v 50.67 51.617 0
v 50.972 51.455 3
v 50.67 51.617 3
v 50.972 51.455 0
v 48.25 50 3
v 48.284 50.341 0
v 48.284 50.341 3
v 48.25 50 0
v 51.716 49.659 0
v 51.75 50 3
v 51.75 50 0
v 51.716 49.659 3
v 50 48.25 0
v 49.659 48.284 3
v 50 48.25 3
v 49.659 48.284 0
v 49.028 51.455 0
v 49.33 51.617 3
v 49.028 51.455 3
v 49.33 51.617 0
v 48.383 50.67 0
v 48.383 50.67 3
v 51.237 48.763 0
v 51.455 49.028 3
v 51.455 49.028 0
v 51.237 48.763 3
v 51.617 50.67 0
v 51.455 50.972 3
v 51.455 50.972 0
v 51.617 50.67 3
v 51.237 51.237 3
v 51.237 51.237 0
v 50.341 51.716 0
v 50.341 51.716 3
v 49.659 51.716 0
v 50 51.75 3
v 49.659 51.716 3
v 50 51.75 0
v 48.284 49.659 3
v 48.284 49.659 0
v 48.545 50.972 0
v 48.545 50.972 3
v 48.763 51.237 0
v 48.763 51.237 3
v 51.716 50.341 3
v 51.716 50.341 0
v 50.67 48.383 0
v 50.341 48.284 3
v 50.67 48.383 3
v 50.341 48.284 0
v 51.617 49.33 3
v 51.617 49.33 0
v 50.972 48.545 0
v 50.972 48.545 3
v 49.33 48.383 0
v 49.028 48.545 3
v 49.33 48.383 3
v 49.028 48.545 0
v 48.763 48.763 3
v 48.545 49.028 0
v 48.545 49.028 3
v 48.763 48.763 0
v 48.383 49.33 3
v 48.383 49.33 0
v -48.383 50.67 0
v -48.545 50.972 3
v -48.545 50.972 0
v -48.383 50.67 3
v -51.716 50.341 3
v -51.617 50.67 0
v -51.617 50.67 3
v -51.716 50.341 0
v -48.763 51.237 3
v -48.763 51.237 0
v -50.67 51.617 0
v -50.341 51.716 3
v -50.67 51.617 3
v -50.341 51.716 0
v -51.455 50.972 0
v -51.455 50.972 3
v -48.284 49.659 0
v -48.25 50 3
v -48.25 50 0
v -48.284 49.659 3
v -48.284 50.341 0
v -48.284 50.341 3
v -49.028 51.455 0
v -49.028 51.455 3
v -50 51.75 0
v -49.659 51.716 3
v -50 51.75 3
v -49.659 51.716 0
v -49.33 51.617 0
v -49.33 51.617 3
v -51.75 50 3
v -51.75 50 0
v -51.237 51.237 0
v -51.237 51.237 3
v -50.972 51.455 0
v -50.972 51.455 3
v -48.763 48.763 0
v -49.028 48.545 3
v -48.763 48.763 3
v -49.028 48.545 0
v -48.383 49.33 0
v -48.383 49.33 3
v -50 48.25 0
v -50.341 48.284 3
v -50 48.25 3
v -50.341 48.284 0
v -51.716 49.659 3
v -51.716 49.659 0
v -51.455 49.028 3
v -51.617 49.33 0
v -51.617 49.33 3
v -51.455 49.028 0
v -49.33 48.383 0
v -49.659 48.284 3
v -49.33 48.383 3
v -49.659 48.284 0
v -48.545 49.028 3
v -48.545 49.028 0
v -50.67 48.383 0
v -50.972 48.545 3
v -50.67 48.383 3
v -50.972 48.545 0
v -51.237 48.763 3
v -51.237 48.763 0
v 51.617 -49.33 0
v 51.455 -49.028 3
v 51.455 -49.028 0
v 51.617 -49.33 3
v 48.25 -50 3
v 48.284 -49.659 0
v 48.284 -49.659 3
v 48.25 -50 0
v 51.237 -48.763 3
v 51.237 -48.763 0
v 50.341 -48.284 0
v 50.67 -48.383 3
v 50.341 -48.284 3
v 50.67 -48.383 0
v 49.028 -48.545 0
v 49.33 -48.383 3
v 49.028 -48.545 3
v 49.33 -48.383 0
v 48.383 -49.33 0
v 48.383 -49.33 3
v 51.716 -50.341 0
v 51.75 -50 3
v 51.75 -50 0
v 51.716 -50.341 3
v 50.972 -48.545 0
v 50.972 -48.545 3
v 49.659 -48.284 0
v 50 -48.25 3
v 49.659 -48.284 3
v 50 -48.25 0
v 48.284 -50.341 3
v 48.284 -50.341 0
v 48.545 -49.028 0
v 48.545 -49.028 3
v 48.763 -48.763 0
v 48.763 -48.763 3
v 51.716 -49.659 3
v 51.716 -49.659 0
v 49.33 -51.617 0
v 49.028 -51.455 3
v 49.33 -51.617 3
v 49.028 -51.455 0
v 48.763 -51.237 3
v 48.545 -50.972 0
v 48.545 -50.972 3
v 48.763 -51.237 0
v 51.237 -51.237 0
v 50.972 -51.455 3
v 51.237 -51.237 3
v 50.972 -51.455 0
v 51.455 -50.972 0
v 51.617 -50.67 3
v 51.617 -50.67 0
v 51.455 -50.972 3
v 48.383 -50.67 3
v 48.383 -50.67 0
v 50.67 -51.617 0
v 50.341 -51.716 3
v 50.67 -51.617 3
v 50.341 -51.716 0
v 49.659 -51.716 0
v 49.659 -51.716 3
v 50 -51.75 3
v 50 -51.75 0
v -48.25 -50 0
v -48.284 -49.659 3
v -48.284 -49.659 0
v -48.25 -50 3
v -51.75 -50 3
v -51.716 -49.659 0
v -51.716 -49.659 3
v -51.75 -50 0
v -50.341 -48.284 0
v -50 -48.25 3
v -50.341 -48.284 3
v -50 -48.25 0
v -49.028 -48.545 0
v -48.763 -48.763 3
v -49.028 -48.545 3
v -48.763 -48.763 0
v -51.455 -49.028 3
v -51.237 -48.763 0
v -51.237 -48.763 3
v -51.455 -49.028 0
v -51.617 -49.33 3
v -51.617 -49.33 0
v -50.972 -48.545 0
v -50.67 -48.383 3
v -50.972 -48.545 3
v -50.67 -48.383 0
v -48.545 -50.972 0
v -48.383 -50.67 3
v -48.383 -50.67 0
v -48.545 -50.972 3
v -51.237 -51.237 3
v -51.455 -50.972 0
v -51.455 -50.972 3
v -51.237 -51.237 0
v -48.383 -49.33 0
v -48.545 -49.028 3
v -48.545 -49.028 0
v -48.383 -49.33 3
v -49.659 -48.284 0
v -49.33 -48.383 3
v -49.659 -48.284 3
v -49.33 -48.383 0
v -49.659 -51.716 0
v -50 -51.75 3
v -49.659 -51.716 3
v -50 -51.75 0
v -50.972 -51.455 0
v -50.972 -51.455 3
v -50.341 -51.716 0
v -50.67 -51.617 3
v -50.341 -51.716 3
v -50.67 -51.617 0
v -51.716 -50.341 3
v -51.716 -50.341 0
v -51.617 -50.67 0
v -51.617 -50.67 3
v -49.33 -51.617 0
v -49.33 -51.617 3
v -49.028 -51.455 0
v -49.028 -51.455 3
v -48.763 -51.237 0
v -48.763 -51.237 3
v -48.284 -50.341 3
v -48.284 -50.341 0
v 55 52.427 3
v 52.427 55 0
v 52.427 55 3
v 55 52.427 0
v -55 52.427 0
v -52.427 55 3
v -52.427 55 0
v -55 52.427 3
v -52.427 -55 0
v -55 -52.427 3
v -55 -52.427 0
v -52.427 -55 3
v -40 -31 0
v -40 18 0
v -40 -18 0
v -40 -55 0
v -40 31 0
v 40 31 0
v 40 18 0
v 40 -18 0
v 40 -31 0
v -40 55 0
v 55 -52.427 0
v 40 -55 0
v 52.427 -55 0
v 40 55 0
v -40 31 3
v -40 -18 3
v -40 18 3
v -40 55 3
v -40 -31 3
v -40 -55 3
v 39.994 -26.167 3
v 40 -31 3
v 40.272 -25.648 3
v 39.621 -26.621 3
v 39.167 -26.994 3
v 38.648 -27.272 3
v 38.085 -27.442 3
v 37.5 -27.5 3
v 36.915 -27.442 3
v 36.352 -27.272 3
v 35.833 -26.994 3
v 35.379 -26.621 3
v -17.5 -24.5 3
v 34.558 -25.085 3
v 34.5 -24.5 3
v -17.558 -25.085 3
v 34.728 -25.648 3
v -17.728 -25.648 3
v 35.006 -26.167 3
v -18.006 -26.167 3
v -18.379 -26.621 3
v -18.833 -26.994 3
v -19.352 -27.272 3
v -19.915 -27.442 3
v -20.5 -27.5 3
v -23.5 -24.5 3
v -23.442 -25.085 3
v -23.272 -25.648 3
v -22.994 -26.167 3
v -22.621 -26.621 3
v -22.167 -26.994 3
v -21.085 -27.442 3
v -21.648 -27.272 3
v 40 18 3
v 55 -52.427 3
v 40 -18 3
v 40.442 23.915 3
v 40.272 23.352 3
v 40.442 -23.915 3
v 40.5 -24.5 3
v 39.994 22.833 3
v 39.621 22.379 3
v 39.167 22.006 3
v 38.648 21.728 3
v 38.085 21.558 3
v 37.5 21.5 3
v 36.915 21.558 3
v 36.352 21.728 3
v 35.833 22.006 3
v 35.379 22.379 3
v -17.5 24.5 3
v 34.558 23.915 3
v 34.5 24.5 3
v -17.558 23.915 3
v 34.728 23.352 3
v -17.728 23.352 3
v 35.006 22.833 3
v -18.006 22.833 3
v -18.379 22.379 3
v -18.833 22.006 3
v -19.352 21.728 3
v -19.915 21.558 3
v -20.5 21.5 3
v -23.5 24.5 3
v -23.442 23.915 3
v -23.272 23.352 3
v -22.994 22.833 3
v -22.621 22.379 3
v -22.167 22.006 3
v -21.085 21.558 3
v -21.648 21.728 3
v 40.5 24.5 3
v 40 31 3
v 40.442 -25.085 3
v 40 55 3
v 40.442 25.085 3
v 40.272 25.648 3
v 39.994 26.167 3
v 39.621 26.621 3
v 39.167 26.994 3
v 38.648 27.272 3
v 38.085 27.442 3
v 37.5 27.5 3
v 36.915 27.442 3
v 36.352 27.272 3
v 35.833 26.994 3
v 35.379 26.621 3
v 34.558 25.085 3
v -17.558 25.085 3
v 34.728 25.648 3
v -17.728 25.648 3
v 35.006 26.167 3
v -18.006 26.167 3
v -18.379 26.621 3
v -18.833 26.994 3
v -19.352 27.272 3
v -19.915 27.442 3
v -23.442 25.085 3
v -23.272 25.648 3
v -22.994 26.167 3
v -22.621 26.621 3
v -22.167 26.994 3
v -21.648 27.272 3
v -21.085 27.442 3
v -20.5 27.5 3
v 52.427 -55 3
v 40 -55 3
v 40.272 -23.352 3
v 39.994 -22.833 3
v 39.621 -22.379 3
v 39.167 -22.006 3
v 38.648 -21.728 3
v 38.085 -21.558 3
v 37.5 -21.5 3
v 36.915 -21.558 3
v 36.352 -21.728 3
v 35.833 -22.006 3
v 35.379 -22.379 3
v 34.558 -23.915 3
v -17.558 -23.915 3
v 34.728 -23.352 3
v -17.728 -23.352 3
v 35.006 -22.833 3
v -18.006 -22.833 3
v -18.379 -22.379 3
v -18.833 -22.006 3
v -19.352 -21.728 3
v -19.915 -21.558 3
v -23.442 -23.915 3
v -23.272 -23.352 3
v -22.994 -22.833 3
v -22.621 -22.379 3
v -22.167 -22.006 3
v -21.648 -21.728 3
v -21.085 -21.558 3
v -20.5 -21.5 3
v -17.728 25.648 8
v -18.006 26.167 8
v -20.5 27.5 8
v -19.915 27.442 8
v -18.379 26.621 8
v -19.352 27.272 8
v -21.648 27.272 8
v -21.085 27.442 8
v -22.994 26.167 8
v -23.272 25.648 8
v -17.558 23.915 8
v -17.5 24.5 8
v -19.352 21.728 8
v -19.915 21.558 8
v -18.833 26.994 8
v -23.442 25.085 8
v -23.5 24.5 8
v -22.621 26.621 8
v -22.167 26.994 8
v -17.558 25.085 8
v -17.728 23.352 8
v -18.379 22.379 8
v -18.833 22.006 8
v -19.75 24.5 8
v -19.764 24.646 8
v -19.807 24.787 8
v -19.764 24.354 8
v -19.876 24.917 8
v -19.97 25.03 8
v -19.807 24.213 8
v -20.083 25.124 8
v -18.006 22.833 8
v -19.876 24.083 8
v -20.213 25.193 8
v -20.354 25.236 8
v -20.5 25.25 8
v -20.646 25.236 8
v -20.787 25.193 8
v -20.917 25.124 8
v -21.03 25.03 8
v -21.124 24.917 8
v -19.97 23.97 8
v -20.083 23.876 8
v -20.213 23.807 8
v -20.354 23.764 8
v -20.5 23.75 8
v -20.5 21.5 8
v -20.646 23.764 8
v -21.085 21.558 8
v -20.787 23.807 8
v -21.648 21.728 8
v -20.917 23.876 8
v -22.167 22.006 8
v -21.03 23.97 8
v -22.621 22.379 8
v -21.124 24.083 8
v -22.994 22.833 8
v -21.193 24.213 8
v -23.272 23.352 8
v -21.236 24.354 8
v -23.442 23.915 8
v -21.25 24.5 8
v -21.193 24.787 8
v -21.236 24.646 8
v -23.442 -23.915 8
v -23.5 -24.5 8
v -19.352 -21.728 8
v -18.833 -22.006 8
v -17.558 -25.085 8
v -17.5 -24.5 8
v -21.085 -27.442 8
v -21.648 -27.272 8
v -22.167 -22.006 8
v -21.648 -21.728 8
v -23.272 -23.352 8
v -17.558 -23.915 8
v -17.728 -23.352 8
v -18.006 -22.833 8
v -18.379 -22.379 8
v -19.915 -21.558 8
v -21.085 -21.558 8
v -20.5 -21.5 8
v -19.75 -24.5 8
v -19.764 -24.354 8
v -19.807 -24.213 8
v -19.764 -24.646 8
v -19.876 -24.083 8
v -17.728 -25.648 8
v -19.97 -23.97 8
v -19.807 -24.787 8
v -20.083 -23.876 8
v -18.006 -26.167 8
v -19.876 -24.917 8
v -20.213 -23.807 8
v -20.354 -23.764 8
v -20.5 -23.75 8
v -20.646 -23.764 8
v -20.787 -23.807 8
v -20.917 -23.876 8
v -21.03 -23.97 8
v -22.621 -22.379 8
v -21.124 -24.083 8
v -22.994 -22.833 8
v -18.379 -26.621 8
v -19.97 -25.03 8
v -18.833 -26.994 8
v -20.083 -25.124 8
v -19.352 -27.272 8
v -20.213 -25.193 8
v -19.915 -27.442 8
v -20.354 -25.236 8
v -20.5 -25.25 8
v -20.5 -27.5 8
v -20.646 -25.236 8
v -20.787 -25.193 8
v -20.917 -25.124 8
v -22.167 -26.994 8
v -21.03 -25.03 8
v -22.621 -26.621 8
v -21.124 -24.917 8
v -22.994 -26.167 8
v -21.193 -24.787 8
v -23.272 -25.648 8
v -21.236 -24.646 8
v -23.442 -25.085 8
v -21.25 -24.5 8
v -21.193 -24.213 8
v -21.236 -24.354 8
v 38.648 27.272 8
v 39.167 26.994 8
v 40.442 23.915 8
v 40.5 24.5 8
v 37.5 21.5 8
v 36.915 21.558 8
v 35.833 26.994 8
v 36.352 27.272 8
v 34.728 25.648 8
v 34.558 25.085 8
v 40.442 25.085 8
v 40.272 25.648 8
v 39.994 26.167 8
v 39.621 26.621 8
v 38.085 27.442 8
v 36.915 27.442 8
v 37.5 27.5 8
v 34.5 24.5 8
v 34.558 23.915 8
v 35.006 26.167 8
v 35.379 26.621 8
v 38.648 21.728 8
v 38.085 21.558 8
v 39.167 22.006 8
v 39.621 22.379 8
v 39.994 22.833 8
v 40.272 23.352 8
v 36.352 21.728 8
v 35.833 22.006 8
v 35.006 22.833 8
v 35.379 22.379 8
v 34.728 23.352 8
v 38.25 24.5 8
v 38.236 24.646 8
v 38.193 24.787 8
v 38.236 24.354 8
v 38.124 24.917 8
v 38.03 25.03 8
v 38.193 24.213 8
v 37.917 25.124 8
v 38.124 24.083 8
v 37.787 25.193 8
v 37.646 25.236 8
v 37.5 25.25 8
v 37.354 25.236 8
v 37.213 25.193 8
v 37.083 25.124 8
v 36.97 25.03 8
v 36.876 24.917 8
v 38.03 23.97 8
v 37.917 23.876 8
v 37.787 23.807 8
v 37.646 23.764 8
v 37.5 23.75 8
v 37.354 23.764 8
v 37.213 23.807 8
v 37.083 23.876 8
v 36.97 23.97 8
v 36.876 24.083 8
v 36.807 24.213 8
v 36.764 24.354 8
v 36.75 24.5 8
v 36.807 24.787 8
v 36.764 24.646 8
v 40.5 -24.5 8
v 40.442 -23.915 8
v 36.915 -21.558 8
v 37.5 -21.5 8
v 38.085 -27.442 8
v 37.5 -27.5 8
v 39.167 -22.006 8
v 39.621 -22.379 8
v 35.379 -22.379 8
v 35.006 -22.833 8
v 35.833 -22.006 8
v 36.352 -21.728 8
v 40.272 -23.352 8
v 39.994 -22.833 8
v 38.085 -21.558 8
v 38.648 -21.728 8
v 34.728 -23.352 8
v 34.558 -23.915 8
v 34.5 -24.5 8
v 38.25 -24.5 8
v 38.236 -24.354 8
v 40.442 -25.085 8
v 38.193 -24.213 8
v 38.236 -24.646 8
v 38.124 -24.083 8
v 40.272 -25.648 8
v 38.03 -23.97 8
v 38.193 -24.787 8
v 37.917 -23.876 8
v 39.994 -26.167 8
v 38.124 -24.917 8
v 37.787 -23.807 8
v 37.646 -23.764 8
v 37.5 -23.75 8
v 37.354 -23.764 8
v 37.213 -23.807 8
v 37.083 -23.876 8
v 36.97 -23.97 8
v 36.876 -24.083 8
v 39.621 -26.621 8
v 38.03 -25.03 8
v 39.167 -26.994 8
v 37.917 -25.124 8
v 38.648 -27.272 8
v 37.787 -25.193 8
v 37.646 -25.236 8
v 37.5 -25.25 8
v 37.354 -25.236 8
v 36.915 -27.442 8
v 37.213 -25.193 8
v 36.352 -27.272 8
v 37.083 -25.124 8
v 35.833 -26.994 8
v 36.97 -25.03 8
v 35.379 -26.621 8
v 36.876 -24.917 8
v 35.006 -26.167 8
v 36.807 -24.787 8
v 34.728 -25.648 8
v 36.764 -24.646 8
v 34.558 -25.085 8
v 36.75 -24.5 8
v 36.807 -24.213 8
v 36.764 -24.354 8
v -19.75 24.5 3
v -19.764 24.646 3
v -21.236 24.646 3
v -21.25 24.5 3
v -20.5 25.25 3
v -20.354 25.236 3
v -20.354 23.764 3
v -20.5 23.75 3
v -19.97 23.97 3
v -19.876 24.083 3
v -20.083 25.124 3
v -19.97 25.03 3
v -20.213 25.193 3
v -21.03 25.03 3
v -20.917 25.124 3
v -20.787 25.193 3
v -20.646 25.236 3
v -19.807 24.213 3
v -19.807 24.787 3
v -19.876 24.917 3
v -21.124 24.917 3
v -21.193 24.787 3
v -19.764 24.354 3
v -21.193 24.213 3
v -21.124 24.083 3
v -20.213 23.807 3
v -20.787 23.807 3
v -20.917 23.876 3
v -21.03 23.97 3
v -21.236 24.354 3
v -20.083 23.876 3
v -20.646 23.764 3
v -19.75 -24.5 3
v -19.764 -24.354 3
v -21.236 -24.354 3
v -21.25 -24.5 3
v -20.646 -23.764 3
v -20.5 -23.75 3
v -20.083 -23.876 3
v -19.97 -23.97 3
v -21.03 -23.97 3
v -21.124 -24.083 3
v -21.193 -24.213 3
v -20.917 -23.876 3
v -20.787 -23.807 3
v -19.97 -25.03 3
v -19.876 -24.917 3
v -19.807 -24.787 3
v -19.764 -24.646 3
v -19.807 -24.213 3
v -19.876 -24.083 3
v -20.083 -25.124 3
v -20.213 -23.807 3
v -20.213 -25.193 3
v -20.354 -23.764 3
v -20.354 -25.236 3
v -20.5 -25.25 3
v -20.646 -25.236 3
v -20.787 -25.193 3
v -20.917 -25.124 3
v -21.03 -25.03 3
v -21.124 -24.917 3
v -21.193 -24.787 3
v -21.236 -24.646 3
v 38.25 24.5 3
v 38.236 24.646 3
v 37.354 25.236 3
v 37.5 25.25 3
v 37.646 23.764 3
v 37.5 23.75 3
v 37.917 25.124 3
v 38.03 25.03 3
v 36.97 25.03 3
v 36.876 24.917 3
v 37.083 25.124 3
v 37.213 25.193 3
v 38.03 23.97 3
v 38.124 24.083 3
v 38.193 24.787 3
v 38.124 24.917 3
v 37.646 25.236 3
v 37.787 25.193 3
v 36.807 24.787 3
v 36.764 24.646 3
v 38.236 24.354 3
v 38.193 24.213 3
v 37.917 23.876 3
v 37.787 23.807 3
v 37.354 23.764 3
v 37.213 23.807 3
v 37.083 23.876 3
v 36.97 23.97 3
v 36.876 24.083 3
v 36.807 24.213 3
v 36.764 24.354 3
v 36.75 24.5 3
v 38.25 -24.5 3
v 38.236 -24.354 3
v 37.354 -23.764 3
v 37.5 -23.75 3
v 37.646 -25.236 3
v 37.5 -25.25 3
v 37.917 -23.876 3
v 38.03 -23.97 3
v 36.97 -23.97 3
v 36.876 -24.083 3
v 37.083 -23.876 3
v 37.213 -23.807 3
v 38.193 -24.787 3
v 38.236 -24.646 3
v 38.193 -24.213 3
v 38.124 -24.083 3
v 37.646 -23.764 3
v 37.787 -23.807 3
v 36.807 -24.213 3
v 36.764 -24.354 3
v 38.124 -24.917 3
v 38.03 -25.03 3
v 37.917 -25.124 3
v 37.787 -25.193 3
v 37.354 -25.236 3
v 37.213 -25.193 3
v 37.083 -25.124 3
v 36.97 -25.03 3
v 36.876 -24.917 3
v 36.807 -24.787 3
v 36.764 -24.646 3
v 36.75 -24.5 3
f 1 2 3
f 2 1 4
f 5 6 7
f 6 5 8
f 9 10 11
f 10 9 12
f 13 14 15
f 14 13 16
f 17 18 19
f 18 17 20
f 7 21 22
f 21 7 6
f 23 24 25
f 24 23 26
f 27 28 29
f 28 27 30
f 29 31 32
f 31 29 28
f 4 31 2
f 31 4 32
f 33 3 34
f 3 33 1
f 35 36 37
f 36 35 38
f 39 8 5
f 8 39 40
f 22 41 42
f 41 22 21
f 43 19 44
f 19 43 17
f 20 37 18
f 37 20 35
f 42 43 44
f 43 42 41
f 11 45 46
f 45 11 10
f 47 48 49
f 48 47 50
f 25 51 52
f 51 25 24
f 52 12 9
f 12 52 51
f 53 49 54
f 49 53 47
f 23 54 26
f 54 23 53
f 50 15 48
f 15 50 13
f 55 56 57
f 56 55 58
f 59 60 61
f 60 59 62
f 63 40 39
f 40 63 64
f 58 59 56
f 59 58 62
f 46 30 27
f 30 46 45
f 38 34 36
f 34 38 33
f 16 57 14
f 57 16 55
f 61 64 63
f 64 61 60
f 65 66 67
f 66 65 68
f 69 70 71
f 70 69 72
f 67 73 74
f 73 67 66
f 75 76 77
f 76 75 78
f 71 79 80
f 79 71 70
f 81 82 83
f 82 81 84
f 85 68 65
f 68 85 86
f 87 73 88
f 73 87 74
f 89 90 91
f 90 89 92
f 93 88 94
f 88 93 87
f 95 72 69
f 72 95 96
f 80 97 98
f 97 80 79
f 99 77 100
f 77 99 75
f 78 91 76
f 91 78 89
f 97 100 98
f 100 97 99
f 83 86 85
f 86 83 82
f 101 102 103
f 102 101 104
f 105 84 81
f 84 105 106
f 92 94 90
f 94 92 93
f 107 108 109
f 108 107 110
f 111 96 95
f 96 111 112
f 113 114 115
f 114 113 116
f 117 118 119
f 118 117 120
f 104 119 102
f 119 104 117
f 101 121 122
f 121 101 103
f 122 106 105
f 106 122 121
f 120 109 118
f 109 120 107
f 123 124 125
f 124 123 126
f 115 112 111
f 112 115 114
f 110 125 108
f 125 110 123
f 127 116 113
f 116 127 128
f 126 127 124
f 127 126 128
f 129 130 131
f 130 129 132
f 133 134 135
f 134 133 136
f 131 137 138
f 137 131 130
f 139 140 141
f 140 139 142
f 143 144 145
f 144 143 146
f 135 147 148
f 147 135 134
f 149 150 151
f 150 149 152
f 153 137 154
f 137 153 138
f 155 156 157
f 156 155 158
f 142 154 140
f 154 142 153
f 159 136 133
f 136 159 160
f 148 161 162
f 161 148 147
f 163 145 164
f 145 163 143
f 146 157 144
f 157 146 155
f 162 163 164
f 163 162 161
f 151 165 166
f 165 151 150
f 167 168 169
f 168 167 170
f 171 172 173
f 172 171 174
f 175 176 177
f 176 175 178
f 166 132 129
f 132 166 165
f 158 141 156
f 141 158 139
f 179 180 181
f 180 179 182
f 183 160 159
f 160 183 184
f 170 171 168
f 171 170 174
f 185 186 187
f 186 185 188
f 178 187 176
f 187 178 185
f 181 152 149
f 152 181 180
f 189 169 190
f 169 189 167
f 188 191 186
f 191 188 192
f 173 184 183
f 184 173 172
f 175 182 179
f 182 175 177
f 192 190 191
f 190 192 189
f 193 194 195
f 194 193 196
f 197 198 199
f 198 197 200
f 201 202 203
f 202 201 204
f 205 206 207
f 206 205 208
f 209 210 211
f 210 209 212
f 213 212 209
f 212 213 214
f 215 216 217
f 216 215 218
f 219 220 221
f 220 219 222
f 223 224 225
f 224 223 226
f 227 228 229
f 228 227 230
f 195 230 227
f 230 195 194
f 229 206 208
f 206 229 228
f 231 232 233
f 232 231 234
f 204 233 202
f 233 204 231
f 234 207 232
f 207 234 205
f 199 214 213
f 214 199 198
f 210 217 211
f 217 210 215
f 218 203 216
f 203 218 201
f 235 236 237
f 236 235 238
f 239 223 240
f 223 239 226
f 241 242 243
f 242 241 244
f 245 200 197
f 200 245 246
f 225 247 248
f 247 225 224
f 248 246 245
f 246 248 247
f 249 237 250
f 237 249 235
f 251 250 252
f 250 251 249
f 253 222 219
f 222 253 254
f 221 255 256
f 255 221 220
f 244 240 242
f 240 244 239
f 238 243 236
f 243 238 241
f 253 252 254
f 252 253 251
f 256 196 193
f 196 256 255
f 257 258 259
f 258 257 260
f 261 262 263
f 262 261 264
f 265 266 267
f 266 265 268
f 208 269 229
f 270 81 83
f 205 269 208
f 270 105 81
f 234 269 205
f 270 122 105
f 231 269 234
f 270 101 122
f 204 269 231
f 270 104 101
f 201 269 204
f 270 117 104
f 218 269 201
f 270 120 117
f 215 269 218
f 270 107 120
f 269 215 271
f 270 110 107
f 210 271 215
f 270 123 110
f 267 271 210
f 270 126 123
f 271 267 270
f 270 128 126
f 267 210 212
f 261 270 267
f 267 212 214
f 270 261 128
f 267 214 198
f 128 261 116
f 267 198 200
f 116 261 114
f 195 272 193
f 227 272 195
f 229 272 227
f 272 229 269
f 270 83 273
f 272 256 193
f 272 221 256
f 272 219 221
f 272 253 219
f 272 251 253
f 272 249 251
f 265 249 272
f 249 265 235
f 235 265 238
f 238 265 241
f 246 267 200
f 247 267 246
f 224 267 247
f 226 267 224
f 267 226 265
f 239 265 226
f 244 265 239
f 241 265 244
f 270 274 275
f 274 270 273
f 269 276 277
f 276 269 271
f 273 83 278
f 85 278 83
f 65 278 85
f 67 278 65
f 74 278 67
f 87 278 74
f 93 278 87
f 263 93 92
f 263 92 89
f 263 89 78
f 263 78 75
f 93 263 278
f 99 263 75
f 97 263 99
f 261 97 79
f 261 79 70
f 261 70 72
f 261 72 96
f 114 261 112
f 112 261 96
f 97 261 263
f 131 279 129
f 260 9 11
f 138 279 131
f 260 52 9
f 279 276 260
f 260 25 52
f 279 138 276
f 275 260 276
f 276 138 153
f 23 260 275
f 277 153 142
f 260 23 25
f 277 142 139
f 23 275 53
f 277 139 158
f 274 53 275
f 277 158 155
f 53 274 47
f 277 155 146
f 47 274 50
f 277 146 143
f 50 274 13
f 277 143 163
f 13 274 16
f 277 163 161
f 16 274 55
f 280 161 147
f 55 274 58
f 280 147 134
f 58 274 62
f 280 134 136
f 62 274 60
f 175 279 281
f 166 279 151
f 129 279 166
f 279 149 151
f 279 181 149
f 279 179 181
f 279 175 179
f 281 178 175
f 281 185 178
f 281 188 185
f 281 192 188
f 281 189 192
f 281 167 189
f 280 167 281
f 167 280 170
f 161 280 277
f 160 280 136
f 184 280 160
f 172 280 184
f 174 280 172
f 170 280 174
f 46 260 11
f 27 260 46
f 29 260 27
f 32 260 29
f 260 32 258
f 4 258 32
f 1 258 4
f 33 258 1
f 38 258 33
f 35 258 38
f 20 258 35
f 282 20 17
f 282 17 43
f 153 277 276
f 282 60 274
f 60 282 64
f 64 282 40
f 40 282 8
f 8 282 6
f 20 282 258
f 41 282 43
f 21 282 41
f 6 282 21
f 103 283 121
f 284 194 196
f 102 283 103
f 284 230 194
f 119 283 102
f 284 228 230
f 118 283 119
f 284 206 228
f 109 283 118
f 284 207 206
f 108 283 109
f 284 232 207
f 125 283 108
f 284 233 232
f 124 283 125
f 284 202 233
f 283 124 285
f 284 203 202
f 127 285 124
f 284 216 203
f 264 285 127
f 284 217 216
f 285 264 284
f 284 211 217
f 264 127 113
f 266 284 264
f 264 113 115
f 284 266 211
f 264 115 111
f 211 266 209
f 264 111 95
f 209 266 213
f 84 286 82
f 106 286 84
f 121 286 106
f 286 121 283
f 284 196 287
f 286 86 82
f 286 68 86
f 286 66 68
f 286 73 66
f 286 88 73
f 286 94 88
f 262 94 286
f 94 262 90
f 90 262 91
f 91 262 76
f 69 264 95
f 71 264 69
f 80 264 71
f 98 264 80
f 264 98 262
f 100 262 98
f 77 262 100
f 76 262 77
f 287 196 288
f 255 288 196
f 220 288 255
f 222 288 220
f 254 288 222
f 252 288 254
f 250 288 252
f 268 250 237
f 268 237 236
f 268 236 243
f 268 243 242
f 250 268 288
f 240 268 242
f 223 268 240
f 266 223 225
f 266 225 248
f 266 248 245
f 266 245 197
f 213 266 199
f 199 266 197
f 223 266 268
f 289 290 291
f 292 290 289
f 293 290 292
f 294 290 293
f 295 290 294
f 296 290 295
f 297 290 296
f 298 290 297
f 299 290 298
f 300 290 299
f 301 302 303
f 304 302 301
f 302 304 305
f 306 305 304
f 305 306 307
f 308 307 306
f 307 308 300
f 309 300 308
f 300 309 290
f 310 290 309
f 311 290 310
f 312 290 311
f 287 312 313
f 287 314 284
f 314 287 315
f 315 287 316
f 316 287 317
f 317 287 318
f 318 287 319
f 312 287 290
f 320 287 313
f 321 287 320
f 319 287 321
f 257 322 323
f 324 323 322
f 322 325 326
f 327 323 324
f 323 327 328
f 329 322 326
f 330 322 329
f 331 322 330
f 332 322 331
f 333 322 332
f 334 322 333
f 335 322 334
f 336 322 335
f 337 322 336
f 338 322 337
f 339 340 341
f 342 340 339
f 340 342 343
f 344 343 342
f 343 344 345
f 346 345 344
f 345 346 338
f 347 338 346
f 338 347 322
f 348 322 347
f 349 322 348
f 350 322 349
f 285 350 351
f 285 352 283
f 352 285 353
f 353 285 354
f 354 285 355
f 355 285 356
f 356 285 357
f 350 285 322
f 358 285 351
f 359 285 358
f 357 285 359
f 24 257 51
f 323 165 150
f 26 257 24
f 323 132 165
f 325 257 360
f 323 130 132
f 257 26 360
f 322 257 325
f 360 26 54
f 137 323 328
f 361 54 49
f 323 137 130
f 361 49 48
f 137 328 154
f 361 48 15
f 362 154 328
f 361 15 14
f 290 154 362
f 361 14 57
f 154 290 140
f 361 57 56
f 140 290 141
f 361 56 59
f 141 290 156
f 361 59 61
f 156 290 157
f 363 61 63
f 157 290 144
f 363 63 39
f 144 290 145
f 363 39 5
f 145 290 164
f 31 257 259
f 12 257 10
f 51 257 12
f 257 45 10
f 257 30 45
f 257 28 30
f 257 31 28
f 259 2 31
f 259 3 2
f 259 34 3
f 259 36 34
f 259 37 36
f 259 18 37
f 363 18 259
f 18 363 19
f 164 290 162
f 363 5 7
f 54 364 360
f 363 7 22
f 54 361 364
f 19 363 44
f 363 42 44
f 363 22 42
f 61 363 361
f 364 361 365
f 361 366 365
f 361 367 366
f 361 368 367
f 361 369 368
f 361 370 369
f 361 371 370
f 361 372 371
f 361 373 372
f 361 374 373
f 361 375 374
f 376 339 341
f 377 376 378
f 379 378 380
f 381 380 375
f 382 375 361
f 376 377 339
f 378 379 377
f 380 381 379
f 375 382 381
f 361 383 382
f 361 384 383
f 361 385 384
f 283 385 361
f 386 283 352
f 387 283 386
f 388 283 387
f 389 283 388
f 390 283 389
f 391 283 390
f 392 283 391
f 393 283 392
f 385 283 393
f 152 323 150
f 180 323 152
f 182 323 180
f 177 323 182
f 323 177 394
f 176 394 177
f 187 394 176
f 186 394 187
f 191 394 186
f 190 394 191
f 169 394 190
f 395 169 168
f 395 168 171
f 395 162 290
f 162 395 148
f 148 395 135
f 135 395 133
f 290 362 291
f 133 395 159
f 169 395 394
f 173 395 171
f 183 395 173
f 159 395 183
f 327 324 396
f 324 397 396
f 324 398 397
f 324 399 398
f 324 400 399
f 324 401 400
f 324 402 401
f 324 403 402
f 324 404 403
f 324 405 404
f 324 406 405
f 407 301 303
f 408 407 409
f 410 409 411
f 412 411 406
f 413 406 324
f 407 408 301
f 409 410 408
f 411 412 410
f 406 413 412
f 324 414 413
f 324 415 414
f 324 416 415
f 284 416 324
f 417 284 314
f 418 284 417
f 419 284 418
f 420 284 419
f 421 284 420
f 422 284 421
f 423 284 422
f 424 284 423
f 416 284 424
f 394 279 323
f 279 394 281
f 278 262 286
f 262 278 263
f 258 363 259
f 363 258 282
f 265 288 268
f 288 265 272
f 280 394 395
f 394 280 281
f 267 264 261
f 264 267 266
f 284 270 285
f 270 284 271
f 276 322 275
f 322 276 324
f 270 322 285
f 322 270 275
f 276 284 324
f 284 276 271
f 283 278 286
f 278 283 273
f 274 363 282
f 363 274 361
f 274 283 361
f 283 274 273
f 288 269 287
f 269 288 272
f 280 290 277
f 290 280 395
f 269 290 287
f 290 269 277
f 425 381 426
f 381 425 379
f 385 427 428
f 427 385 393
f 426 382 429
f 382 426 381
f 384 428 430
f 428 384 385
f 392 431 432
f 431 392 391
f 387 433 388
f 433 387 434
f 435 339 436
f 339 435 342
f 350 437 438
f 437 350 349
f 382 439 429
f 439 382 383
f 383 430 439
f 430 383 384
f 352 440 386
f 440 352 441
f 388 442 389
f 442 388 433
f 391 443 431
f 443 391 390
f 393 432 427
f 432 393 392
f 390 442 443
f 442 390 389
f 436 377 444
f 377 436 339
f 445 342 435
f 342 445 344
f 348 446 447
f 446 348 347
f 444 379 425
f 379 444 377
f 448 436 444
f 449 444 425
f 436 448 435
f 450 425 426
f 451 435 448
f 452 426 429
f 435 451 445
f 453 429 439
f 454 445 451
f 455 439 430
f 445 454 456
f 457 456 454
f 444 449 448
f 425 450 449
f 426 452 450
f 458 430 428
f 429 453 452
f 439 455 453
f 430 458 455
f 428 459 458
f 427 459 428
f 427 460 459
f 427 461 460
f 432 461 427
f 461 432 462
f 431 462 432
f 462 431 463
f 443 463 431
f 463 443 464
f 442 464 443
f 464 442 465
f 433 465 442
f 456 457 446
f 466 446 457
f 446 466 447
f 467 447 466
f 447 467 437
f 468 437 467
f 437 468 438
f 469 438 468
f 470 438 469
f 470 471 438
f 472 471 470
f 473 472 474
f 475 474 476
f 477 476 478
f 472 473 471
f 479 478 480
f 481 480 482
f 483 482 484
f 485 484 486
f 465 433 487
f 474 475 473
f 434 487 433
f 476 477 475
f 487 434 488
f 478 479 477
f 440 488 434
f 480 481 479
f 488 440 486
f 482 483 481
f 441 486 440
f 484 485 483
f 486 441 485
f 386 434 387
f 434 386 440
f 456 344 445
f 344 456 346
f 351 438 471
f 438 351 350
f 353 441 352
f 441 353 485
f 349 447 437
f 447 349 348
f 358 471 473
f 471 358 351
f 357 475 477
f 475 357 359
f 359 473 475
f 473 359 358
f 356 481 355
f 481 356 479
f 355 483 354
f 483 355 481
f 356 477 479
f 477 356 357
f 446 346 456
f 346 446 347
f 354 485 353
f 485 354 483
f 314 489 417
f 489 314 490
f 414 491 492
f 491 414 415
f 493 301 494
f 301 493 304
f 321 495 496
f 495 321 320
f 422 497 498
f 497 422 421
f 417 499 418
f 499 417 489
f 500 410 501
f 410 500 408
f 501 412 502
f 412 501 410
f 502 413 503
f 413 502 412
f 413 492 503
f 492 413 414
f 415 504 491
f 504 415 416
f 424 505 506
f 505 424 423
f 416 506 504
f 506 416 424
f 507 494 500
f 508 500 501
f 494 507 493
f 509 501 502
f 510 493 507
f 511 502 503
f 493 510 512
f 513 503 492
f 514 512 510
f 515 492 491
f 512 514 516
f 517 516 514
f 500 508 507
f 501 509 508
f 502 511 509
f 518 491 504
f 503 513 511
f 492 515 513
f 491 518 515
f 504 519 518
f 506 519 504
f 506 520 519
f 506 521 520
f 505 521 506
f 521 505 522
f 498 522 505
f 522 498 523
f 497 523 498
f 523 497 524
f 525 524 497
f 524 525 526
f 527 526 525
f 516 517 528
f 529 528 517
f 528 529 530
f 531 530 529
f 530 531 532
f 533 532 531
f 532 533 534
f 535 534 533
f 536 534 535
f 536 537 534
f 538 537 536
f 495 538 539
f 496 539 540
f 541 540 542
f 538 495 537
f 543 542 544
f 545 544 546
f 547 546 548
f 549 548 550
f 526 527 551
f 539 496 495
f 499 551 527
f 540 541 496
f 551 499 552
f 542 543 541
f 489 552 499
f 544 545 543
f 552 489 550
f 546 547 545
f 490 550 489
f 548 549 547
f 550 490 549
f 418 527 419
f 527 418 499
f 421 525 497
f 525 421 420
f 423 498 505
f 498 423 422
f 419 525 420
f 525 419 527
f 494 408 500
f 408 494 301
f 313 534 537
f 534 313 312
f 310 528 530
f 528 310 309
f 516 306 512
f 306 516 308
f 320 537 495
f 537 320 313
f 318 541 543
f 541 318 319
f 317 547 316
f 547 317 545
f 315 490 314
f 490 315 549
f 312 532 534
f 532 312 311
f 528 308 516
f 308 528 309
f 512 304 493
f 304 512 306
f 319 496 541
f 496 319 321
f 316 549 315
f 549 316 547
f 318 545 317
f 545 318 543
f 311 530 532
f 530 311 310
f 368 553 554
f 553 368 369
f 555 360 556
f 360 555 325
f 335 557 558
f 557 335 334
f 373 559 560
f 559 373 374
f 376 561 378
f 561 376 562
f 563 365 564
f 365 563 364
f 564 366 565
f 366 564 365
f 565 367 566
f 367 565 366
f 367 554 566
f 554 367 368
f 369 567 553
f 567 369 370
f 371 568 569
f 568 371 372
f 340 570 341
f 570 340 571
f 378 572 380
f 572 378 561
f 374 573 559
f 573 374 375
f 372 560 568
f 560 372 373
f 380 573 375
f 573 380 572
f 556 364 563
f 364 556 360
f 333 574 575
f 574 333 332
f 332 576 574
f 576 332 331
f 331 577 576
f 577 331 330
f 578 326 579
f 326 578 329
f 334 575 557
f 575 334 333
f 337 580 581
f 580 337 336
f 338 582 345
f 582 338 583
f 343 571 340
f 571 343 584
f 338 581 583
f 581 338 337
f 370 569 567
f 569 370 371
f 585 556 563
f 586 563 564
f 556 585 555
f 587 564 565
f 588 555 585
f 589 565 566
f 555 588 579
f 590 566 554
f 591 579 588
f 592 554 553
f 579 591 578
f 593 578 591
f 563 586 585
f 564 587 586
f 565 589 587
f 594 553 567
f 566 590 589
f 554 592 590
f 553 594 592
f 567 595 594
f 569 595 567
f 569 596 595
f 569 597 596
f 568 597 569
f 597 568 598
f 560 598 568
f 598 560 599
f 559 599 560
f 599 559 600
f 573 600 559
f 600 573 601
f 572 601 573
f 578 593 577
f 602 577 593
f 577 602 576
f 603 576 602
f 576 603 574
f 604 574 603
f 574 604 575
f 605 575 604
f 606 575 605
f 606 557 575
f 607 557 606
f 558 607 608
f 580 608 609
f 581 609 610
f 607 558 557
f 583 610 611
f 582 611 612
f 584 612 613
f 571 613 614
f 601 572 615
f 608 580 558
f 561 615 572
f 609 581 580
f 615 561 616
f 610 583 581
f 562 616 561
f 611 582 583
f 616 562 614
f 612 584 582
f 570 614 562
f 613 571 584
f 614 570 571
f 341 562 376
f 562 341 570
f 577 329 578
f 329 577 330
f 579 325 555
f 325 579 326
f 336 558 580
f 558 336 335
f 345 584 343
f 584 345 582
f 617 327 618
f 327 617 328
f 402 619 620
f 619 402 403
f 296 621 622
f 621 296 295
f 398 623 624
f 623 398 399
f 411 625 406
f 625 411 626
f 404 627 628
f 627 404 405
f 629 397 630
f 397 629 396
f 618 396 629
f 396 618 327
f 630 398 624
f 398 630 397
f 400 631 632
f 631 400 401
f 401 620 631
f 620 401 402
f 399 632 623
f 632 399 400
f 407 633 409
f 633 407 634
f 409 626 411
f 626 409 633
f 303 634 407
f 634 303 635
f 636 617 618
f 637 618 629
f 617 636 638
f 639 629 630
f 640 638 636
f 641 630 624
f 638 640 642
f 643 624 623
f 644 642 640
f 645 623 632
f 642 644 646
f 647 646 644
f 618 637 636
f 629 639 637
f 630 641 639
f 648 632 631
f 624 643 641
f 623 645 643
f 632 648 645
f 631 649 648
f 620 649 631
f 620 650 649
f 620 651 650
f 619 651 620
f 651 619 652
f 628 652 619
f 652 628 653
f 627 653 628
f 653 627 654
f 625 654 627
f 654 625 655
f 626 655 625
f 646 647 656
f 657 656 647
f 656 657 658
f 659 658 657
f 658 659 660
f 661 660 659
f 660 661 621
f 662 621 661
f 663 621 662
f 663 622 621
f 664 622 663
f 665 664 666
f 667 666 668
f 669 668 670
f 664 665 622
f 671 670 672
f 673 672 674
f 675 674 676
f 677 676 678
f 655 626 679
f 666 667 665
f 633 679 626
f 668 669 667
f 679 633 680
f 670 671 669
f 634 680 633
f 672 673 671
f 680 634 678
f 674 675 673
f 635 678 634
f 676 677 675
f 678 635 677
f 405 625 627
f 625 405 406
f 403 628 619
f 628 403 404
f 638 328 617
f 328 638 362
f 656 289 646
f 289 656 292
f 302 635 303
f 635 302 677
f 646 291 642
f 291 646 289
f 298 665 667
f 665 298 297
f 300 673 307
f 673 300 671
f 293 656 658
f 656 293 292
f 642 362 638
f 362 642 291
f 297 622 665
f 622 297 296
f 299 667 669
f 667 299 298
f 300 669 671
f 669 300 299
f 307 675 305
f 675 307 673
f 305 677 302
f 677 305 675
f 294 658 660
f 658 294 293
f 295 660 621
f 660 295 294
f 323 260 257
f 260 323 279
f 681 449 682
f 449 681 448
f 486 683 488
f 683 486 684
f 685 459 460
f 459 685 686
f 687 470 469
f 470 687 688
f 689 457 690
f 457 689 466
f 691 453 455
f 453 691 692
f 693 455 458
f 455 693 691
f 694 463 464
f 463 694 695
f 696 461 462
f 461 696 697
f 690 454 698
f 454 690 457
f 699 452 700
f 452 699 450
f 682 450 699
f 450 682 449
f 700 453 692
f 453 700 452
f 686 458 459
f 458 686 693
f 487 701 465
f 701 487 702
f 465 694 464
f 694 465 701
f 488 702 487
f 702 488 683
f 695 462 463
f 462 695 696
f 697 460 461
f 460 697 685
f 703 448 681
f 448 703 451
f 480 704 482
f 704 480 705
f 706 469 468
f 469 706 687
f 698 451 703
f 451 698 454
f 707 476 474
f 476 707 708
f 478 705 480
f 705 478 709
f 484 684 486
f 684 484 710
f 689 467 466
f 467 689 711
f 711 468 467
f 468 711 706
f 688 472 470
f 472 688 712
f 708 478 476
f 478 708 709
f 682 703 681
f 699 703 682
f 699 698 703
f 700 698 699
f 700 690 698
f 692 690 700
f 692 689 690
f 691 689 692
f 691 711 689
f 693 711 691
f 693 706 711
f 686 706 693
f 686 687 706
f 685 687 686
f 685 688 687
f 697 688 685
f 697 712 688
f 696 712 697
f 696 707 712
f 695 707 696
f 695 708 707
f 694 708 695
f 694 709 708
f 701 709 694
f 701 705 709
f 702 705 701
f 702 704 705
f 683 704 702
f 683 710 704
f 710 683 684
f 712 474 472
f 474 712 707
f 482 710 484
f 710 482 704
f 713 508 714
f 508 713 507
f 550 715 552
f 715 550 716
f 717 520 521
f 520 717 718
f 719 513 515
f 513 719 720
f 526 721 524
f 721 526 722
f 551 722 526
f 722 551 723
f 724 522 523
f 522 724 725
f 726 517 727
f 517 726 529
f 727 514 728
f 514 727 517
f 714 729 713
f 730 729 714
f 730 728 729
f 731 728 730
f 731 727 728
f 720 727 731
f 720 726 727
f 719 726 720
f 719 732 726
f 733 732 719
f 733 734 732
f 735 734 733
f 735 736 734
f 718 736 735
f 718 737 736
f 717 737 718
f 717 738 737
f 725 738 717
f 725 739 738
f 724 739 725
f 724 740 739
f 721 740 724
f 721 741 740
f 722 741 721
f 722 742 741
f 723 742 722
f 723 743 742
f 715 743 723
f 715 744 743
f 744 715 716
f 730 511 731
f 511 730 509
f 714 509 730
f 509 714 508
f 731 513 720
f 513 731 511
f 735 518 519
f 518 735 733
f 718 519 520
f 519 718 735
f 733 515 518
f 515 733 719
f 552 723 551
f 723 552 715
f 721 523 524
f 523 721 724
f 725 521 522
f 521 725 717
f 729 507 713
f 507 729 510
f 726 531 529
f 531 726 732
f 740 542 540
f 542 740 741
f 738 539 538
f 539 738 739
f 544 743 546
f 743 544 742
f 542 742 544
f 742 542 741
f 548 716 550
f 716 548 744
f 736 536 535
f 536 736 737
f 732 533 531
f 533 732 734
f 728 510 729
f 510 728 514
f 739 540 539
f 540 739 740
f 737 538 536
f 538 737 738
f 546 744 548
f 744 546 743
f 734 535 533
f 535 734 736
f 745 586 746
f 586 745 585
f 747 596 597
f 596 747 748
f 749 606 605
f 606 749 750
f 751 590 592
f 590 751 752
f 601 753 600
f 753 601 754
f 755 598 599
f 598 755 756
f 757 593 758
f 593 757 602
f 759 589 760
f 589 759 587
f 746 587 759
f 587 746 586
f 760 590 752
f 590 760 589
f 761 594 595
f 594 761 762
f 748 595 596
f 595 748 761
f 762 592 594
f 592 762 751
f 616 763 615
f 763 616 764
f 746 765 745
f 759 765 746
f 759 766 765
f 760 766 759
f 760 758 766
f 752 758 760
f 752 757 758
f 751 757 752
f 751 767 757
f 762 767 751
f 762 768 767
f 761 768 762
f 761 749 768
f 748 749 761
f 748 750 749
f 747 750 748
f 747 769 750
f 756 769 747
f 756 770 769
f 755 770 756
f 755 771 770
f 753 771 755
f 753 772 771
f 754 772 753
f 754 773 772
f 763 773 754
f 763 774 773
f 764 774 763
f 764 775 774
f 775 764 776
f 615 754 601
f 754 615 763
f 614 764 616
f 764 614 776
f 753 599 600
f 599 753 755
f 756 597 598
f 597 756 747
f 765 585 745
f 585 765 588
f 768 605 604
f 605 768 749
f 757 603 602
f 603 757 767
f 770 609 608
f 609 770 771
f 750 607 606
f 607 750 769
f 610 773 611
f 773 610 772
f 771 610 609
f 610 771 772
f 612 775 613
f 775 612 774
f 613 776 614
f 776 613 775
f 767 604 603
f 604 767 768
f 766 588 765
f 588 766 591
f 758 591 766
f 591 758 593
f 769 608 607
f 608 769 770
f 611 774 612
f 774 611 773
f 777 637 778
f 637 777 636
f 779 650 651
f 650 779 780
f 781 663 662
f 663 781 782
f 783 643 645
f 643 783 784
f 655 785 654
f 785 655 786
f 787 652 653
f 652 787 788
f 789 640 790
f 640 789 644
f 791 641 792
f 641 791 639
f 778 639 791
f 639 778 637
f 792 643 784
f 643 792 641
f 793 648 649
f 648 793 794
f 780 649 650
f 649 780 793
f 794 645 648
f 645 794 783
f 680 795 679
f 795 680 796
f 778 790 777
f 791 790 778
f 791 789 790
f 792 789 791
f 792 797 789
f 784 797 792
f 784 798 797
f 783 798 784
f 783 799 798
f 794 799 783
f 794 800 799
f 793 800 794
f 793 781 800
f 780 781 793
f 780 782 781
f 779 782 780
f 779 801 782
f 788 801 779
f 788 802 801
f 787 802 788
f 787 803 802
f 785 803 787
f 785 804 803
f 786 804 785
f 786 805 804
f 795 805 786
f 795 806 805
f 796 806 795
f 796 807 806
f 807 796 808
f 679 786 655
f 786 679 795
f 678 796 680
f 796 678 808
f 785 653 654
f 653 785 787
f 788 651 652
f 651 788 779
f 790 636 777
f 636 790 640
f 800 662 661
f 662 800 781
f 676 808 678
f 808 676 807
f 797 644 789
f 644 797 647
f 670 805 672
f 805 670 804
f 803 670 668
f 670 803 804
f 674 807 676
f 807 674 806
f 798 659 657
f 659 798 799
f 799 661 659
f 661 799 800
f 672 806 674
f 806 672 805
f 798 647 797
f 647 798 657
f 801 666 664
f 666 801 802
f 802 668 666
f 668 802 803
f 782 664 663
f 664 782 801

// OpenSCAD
module led5050()
{
    // 5050 SMD LED
    // Body
    color("white")
        difference()
        {
            translate([-2.5,-2.5,0.1])
                    cube([5,5,1.6]);
            translate([-2.7,-2.7,2])        
                rotate([0,0,45])        
                    cube([2,2,1],center=true);
        }

    // Yellow spot    
    translate([0,0,0.701])
        color("yellow")
            cylinder(h=1,r=2,$fn=100);

    // Pin
    color("gray")
        for(i=[-1.6,0,1.6])
            for(j=[-1,1])
            {
                translate([j * 2.2,i,0.1])
                    cube([1,1,0.2],center=true);
                translate([j * 2.6,i,0.4])
                    cube([0.2,1,0.8],center = true);
            }
}

b = 15;
h = 15;
w = 3;

/*
// loudspeaker plate
difference()
{
union()
{
    difference()
    {
        cylinder(h=50,d=160,$fn=100);
        translate([0,0,3])
            cylinder(h=47.001,d=154,$fn=100);
        // assembly holes
        for(i = [[50,50,-1],[-50,50,-1],[50,-50,-1],[-50,-50,-1]])
            translate(i)
                cylinder(h=7,d=3.5,$fn=32);
        // loudspeaker mounting holes
        for(i = [[41,41,-1],[-41,41,-1],[41,-41,-1],[-41,-41,-1]])
            translate(i)
                cylinder(h=7,d=4.5,$fn=32);
        // back plate cutout
        translate([61,-60,3])
            cube([20,120,50]);

        translate([0,0,-0.5])
            cylinder(h=4,d=92,$fn=100);
    }
    // back plate
    translate([58,-51,0])
        cube([3,5,50]);
    translate([59.5,-46,3])
        // Extruded triangle
        rotate(a=[90,-90,-90])
            linear_extrude(height = w, center = true, convexity = 10, twist = 0)
                polygon(points=[[0,0],[h,0],[0,b]], paths=[[0,1,2]]);
    translate([58,46,0])
        cube([3,5,50]);
    translate([58,-51,0])
        cube([3,102,8]);
    translate([59.5,46,3])
        // Extruded triangle
        rotate(a=[90,-90,90])
            linear_extrude(height = w, center = true, convexity = 10, twist = 0)
                polygon(points=[[0,0],[h,0],[0,b]], paths=[[0,1,2]]);

    // cylinder(h=3, d= 20, $fn=100);
    for(i=[0:4])
    {
        difference()
        {
            cylinder(h=3, d=84-i*16, $fn=100);
            translate([0,0,-0.5])
                cylinder(h=4, d=76-i*16, $fn=100);
        }
    }
    for(i=[0:7])
        rotate([0,0,i*45])
            translate([-2,6,0])
                cube([4,40,3]);
}
translate([56,-44,10])
    rotate(a=[0,90,0])
        cylinder(h=7,d=2.5,$fn=100);
translate([56,44,10])
    rotate(a=[0,90,0])
        cylinder(h=7,d=2.5,$fn=100);
}
*/

/*
// PSU plate
difference()
{
    union()
    {
        difference()
        {
            cylinder(h=50,d=160,$fn=100);
            translate([0,0,3])
                cylinder(h=47.001,d=154,$fn=100);
            // assembly holes
            for(i = [[50,50,-1],[-50,50,-1],[50,-50,-1],[-50,-50,-1]])
                translate(i)
                    cylinder(h=7,d=3.5,$fn=32);
            // bottom hole
            translate([0,0,-0.5])
                cylinder(h=4,d=130,$fn=100);
        }
        // back bottom support
        translate([46,-48,0])
            cube([15,96,3]);
        
        // back plate
        translate([58,-51,0])
            cube([3,5,50]);
        translate([58,46,0])
            cube([3,5,50]);
        
        // PSU holding cross
        rotate([0,0,5])
        {
            difference()
            {
                union()
                {
                    for(i=[0:1])
                        rotate([0,0,i*90])
                            translate([-7.5,-70,0])
                                cube([15,140,3]);
                    translate([-26,3,0])
                        cylinder(h=8,d=9,$fn=100);
                    translate([29,3,0])
                        cylinder(h=8,d=9,$fn=100);
                    
                    translate([0,40,0])
                        cylinder(h=8,d=9,$fn=100);
                    translate([0,-40,0])
                        cylinder(h=8,d=9,$fn=100);
                }
            translate([-26,3,-0.001])
                cylinder(h=8.002,d=3.5,$fn=20);
            translate([29,3,-0.001])
                cylinder(h=8.002,d=3.5,$fn=20);
            }
       }
    }
    // back plate cutout
    translate([61,-60,-0.001])
        cube([20,120,50.002]);
}
*/


// Raspberry Pi Holder
difference()
{
    union()
    {
        difference()
        {
            cylinder(h=3,d=152,$fn=100);
            // assembly holes
            for(i = [[50,50,-1],[-50,50,-1],[50,-50,-1],[-50,-50,-1]])
                translate(i)
                    cylinder(h=7,d=3.5,$fn=32);
            translate([-60,55,-0.001])
                cube([120,30,3.002]);
            translate([-60,-85,-0.001])
                cube([120,30,3.002]);
            
            
            translate([-80,-60,-0.001])
                cube([25,120,8.002]);
            
            translate([-40,-18,-0.001])
                cube([80,36,3.002]);
            translate([-40,31,-0.001])
                cube([80,30,3.002]);
            translate([-40,-61,-0.001])
                cube([80,30,3.002]);
            

       }
        translate([-20.5,24.5,0])
            cylinder(h=8,d=6,$fn=32);
        translate([-20.5,-24.5,0])
            cylinder(h=8,d=6,$fn=32);
        translate([37.5,24.5,0])
            cylinder(h=8,d=6,$fn=32);
        translate([37.5,-24.5,0])
            cylinder(h=8,d=6,$fn=32);
       
    }
    // back plate cutout
    translate([55,-60,-0.001])
        cube([25,120,50.002]);
    translate([-20.5,24.5,3])
        cylinder(h=5.002,d=1.5,$fn=32);
    translate([-20.5,-24.5,3])
        cylinder(h=5.002,d=1.5,$fn=32);
    translate([37.5,24.5,3])
        cylinder(h=5.002,d=1.5,$fn=32);
    translate([37.5,-24.5,3])
        cylinder(h=5.002,d=1.5,$fn=32);
}



/*
// PSU
rotate([0,0,5])
    difference()
    {
            translate([-50,-49,8])
                color("gray")
                    cube([100,98,37]);
        translate([-26,3,7.5])
            cylinder(h=40,d=3,$fn=20);
        translate([29,3,7.5])
            cylinder(h=40,d=3,$fn=20);
    }
*/

/*
// bottom ring
difference()
{
    union()
    {
        cylinder(h=3,d=160,$fn=100);
        for(i = [[50,50,3],[-50,50,3],[50,-50,3],[-50,-50,3]])
            translate(i)
                cylinder(h=10,d=13.5,$fn=100);
    }
    // assembly holes
    for(i = [[50,50,-1],[-50,50,-1],[50,-50,-1],[-50,-50,-1]])
        translate(i)
            cylinder(h=15,d=3.5,$fn=100);
    for(i = [[50,50,8],[-50,50,8],[50,-50,8],[-50,-50,8]])
        translate(i)
            cylinder(h=15,d=8,$fn=100);
    // bottom hole
    translate([0,0,-0.5])
        cylinder(h=4,d=128,$fn=100);
}
*/


/*
translate([0,0,200])
{
// Holder ring
difference()
{
    cylinder(h=5,d=160,$fn=100);
    translate([0,0,-0.001])
    cylinder(h=111, d1=114, d2=80, $fn=100);
    for(i = [[50,50,-1],[-50,50,-1],[50,-50,-1],[-50,-50,-1]])
        translate(i)
            cylinder(h=7,d=3.5,$fn=100);
}



// Transparent hull
color("azure",0.5)
    %difference()
    {
        cylinder(h=111,d1=114, d2=80,$fn=100);
        translate([0,0,-0.001])
            cylinder(h=96,d1=104, d2=70,$fn=100);
        cube([150,150,150]);
    }
    
// Top and bottom boards
color("green")
{
    cylinder(h=1.6,d=90,$fn=100);
    translate([0,0,92])
        cylinder(h=1.6,d=60,$fn=100);
}

// Neopixel light panels
 for(i=[0:22.5:350])
    rotate([0,0,i])
        translate([-46,0,0])
            rotate([0,-81,0])
                translate([0,-6,0])
                {
                     color("green")
                        cube([95,12,1.6]);
                     for(j=[9:8.5:90])
                         translate([j,6,1.6])
                            rotate([0,0,90])
                                led5050();
                }
}
*/
